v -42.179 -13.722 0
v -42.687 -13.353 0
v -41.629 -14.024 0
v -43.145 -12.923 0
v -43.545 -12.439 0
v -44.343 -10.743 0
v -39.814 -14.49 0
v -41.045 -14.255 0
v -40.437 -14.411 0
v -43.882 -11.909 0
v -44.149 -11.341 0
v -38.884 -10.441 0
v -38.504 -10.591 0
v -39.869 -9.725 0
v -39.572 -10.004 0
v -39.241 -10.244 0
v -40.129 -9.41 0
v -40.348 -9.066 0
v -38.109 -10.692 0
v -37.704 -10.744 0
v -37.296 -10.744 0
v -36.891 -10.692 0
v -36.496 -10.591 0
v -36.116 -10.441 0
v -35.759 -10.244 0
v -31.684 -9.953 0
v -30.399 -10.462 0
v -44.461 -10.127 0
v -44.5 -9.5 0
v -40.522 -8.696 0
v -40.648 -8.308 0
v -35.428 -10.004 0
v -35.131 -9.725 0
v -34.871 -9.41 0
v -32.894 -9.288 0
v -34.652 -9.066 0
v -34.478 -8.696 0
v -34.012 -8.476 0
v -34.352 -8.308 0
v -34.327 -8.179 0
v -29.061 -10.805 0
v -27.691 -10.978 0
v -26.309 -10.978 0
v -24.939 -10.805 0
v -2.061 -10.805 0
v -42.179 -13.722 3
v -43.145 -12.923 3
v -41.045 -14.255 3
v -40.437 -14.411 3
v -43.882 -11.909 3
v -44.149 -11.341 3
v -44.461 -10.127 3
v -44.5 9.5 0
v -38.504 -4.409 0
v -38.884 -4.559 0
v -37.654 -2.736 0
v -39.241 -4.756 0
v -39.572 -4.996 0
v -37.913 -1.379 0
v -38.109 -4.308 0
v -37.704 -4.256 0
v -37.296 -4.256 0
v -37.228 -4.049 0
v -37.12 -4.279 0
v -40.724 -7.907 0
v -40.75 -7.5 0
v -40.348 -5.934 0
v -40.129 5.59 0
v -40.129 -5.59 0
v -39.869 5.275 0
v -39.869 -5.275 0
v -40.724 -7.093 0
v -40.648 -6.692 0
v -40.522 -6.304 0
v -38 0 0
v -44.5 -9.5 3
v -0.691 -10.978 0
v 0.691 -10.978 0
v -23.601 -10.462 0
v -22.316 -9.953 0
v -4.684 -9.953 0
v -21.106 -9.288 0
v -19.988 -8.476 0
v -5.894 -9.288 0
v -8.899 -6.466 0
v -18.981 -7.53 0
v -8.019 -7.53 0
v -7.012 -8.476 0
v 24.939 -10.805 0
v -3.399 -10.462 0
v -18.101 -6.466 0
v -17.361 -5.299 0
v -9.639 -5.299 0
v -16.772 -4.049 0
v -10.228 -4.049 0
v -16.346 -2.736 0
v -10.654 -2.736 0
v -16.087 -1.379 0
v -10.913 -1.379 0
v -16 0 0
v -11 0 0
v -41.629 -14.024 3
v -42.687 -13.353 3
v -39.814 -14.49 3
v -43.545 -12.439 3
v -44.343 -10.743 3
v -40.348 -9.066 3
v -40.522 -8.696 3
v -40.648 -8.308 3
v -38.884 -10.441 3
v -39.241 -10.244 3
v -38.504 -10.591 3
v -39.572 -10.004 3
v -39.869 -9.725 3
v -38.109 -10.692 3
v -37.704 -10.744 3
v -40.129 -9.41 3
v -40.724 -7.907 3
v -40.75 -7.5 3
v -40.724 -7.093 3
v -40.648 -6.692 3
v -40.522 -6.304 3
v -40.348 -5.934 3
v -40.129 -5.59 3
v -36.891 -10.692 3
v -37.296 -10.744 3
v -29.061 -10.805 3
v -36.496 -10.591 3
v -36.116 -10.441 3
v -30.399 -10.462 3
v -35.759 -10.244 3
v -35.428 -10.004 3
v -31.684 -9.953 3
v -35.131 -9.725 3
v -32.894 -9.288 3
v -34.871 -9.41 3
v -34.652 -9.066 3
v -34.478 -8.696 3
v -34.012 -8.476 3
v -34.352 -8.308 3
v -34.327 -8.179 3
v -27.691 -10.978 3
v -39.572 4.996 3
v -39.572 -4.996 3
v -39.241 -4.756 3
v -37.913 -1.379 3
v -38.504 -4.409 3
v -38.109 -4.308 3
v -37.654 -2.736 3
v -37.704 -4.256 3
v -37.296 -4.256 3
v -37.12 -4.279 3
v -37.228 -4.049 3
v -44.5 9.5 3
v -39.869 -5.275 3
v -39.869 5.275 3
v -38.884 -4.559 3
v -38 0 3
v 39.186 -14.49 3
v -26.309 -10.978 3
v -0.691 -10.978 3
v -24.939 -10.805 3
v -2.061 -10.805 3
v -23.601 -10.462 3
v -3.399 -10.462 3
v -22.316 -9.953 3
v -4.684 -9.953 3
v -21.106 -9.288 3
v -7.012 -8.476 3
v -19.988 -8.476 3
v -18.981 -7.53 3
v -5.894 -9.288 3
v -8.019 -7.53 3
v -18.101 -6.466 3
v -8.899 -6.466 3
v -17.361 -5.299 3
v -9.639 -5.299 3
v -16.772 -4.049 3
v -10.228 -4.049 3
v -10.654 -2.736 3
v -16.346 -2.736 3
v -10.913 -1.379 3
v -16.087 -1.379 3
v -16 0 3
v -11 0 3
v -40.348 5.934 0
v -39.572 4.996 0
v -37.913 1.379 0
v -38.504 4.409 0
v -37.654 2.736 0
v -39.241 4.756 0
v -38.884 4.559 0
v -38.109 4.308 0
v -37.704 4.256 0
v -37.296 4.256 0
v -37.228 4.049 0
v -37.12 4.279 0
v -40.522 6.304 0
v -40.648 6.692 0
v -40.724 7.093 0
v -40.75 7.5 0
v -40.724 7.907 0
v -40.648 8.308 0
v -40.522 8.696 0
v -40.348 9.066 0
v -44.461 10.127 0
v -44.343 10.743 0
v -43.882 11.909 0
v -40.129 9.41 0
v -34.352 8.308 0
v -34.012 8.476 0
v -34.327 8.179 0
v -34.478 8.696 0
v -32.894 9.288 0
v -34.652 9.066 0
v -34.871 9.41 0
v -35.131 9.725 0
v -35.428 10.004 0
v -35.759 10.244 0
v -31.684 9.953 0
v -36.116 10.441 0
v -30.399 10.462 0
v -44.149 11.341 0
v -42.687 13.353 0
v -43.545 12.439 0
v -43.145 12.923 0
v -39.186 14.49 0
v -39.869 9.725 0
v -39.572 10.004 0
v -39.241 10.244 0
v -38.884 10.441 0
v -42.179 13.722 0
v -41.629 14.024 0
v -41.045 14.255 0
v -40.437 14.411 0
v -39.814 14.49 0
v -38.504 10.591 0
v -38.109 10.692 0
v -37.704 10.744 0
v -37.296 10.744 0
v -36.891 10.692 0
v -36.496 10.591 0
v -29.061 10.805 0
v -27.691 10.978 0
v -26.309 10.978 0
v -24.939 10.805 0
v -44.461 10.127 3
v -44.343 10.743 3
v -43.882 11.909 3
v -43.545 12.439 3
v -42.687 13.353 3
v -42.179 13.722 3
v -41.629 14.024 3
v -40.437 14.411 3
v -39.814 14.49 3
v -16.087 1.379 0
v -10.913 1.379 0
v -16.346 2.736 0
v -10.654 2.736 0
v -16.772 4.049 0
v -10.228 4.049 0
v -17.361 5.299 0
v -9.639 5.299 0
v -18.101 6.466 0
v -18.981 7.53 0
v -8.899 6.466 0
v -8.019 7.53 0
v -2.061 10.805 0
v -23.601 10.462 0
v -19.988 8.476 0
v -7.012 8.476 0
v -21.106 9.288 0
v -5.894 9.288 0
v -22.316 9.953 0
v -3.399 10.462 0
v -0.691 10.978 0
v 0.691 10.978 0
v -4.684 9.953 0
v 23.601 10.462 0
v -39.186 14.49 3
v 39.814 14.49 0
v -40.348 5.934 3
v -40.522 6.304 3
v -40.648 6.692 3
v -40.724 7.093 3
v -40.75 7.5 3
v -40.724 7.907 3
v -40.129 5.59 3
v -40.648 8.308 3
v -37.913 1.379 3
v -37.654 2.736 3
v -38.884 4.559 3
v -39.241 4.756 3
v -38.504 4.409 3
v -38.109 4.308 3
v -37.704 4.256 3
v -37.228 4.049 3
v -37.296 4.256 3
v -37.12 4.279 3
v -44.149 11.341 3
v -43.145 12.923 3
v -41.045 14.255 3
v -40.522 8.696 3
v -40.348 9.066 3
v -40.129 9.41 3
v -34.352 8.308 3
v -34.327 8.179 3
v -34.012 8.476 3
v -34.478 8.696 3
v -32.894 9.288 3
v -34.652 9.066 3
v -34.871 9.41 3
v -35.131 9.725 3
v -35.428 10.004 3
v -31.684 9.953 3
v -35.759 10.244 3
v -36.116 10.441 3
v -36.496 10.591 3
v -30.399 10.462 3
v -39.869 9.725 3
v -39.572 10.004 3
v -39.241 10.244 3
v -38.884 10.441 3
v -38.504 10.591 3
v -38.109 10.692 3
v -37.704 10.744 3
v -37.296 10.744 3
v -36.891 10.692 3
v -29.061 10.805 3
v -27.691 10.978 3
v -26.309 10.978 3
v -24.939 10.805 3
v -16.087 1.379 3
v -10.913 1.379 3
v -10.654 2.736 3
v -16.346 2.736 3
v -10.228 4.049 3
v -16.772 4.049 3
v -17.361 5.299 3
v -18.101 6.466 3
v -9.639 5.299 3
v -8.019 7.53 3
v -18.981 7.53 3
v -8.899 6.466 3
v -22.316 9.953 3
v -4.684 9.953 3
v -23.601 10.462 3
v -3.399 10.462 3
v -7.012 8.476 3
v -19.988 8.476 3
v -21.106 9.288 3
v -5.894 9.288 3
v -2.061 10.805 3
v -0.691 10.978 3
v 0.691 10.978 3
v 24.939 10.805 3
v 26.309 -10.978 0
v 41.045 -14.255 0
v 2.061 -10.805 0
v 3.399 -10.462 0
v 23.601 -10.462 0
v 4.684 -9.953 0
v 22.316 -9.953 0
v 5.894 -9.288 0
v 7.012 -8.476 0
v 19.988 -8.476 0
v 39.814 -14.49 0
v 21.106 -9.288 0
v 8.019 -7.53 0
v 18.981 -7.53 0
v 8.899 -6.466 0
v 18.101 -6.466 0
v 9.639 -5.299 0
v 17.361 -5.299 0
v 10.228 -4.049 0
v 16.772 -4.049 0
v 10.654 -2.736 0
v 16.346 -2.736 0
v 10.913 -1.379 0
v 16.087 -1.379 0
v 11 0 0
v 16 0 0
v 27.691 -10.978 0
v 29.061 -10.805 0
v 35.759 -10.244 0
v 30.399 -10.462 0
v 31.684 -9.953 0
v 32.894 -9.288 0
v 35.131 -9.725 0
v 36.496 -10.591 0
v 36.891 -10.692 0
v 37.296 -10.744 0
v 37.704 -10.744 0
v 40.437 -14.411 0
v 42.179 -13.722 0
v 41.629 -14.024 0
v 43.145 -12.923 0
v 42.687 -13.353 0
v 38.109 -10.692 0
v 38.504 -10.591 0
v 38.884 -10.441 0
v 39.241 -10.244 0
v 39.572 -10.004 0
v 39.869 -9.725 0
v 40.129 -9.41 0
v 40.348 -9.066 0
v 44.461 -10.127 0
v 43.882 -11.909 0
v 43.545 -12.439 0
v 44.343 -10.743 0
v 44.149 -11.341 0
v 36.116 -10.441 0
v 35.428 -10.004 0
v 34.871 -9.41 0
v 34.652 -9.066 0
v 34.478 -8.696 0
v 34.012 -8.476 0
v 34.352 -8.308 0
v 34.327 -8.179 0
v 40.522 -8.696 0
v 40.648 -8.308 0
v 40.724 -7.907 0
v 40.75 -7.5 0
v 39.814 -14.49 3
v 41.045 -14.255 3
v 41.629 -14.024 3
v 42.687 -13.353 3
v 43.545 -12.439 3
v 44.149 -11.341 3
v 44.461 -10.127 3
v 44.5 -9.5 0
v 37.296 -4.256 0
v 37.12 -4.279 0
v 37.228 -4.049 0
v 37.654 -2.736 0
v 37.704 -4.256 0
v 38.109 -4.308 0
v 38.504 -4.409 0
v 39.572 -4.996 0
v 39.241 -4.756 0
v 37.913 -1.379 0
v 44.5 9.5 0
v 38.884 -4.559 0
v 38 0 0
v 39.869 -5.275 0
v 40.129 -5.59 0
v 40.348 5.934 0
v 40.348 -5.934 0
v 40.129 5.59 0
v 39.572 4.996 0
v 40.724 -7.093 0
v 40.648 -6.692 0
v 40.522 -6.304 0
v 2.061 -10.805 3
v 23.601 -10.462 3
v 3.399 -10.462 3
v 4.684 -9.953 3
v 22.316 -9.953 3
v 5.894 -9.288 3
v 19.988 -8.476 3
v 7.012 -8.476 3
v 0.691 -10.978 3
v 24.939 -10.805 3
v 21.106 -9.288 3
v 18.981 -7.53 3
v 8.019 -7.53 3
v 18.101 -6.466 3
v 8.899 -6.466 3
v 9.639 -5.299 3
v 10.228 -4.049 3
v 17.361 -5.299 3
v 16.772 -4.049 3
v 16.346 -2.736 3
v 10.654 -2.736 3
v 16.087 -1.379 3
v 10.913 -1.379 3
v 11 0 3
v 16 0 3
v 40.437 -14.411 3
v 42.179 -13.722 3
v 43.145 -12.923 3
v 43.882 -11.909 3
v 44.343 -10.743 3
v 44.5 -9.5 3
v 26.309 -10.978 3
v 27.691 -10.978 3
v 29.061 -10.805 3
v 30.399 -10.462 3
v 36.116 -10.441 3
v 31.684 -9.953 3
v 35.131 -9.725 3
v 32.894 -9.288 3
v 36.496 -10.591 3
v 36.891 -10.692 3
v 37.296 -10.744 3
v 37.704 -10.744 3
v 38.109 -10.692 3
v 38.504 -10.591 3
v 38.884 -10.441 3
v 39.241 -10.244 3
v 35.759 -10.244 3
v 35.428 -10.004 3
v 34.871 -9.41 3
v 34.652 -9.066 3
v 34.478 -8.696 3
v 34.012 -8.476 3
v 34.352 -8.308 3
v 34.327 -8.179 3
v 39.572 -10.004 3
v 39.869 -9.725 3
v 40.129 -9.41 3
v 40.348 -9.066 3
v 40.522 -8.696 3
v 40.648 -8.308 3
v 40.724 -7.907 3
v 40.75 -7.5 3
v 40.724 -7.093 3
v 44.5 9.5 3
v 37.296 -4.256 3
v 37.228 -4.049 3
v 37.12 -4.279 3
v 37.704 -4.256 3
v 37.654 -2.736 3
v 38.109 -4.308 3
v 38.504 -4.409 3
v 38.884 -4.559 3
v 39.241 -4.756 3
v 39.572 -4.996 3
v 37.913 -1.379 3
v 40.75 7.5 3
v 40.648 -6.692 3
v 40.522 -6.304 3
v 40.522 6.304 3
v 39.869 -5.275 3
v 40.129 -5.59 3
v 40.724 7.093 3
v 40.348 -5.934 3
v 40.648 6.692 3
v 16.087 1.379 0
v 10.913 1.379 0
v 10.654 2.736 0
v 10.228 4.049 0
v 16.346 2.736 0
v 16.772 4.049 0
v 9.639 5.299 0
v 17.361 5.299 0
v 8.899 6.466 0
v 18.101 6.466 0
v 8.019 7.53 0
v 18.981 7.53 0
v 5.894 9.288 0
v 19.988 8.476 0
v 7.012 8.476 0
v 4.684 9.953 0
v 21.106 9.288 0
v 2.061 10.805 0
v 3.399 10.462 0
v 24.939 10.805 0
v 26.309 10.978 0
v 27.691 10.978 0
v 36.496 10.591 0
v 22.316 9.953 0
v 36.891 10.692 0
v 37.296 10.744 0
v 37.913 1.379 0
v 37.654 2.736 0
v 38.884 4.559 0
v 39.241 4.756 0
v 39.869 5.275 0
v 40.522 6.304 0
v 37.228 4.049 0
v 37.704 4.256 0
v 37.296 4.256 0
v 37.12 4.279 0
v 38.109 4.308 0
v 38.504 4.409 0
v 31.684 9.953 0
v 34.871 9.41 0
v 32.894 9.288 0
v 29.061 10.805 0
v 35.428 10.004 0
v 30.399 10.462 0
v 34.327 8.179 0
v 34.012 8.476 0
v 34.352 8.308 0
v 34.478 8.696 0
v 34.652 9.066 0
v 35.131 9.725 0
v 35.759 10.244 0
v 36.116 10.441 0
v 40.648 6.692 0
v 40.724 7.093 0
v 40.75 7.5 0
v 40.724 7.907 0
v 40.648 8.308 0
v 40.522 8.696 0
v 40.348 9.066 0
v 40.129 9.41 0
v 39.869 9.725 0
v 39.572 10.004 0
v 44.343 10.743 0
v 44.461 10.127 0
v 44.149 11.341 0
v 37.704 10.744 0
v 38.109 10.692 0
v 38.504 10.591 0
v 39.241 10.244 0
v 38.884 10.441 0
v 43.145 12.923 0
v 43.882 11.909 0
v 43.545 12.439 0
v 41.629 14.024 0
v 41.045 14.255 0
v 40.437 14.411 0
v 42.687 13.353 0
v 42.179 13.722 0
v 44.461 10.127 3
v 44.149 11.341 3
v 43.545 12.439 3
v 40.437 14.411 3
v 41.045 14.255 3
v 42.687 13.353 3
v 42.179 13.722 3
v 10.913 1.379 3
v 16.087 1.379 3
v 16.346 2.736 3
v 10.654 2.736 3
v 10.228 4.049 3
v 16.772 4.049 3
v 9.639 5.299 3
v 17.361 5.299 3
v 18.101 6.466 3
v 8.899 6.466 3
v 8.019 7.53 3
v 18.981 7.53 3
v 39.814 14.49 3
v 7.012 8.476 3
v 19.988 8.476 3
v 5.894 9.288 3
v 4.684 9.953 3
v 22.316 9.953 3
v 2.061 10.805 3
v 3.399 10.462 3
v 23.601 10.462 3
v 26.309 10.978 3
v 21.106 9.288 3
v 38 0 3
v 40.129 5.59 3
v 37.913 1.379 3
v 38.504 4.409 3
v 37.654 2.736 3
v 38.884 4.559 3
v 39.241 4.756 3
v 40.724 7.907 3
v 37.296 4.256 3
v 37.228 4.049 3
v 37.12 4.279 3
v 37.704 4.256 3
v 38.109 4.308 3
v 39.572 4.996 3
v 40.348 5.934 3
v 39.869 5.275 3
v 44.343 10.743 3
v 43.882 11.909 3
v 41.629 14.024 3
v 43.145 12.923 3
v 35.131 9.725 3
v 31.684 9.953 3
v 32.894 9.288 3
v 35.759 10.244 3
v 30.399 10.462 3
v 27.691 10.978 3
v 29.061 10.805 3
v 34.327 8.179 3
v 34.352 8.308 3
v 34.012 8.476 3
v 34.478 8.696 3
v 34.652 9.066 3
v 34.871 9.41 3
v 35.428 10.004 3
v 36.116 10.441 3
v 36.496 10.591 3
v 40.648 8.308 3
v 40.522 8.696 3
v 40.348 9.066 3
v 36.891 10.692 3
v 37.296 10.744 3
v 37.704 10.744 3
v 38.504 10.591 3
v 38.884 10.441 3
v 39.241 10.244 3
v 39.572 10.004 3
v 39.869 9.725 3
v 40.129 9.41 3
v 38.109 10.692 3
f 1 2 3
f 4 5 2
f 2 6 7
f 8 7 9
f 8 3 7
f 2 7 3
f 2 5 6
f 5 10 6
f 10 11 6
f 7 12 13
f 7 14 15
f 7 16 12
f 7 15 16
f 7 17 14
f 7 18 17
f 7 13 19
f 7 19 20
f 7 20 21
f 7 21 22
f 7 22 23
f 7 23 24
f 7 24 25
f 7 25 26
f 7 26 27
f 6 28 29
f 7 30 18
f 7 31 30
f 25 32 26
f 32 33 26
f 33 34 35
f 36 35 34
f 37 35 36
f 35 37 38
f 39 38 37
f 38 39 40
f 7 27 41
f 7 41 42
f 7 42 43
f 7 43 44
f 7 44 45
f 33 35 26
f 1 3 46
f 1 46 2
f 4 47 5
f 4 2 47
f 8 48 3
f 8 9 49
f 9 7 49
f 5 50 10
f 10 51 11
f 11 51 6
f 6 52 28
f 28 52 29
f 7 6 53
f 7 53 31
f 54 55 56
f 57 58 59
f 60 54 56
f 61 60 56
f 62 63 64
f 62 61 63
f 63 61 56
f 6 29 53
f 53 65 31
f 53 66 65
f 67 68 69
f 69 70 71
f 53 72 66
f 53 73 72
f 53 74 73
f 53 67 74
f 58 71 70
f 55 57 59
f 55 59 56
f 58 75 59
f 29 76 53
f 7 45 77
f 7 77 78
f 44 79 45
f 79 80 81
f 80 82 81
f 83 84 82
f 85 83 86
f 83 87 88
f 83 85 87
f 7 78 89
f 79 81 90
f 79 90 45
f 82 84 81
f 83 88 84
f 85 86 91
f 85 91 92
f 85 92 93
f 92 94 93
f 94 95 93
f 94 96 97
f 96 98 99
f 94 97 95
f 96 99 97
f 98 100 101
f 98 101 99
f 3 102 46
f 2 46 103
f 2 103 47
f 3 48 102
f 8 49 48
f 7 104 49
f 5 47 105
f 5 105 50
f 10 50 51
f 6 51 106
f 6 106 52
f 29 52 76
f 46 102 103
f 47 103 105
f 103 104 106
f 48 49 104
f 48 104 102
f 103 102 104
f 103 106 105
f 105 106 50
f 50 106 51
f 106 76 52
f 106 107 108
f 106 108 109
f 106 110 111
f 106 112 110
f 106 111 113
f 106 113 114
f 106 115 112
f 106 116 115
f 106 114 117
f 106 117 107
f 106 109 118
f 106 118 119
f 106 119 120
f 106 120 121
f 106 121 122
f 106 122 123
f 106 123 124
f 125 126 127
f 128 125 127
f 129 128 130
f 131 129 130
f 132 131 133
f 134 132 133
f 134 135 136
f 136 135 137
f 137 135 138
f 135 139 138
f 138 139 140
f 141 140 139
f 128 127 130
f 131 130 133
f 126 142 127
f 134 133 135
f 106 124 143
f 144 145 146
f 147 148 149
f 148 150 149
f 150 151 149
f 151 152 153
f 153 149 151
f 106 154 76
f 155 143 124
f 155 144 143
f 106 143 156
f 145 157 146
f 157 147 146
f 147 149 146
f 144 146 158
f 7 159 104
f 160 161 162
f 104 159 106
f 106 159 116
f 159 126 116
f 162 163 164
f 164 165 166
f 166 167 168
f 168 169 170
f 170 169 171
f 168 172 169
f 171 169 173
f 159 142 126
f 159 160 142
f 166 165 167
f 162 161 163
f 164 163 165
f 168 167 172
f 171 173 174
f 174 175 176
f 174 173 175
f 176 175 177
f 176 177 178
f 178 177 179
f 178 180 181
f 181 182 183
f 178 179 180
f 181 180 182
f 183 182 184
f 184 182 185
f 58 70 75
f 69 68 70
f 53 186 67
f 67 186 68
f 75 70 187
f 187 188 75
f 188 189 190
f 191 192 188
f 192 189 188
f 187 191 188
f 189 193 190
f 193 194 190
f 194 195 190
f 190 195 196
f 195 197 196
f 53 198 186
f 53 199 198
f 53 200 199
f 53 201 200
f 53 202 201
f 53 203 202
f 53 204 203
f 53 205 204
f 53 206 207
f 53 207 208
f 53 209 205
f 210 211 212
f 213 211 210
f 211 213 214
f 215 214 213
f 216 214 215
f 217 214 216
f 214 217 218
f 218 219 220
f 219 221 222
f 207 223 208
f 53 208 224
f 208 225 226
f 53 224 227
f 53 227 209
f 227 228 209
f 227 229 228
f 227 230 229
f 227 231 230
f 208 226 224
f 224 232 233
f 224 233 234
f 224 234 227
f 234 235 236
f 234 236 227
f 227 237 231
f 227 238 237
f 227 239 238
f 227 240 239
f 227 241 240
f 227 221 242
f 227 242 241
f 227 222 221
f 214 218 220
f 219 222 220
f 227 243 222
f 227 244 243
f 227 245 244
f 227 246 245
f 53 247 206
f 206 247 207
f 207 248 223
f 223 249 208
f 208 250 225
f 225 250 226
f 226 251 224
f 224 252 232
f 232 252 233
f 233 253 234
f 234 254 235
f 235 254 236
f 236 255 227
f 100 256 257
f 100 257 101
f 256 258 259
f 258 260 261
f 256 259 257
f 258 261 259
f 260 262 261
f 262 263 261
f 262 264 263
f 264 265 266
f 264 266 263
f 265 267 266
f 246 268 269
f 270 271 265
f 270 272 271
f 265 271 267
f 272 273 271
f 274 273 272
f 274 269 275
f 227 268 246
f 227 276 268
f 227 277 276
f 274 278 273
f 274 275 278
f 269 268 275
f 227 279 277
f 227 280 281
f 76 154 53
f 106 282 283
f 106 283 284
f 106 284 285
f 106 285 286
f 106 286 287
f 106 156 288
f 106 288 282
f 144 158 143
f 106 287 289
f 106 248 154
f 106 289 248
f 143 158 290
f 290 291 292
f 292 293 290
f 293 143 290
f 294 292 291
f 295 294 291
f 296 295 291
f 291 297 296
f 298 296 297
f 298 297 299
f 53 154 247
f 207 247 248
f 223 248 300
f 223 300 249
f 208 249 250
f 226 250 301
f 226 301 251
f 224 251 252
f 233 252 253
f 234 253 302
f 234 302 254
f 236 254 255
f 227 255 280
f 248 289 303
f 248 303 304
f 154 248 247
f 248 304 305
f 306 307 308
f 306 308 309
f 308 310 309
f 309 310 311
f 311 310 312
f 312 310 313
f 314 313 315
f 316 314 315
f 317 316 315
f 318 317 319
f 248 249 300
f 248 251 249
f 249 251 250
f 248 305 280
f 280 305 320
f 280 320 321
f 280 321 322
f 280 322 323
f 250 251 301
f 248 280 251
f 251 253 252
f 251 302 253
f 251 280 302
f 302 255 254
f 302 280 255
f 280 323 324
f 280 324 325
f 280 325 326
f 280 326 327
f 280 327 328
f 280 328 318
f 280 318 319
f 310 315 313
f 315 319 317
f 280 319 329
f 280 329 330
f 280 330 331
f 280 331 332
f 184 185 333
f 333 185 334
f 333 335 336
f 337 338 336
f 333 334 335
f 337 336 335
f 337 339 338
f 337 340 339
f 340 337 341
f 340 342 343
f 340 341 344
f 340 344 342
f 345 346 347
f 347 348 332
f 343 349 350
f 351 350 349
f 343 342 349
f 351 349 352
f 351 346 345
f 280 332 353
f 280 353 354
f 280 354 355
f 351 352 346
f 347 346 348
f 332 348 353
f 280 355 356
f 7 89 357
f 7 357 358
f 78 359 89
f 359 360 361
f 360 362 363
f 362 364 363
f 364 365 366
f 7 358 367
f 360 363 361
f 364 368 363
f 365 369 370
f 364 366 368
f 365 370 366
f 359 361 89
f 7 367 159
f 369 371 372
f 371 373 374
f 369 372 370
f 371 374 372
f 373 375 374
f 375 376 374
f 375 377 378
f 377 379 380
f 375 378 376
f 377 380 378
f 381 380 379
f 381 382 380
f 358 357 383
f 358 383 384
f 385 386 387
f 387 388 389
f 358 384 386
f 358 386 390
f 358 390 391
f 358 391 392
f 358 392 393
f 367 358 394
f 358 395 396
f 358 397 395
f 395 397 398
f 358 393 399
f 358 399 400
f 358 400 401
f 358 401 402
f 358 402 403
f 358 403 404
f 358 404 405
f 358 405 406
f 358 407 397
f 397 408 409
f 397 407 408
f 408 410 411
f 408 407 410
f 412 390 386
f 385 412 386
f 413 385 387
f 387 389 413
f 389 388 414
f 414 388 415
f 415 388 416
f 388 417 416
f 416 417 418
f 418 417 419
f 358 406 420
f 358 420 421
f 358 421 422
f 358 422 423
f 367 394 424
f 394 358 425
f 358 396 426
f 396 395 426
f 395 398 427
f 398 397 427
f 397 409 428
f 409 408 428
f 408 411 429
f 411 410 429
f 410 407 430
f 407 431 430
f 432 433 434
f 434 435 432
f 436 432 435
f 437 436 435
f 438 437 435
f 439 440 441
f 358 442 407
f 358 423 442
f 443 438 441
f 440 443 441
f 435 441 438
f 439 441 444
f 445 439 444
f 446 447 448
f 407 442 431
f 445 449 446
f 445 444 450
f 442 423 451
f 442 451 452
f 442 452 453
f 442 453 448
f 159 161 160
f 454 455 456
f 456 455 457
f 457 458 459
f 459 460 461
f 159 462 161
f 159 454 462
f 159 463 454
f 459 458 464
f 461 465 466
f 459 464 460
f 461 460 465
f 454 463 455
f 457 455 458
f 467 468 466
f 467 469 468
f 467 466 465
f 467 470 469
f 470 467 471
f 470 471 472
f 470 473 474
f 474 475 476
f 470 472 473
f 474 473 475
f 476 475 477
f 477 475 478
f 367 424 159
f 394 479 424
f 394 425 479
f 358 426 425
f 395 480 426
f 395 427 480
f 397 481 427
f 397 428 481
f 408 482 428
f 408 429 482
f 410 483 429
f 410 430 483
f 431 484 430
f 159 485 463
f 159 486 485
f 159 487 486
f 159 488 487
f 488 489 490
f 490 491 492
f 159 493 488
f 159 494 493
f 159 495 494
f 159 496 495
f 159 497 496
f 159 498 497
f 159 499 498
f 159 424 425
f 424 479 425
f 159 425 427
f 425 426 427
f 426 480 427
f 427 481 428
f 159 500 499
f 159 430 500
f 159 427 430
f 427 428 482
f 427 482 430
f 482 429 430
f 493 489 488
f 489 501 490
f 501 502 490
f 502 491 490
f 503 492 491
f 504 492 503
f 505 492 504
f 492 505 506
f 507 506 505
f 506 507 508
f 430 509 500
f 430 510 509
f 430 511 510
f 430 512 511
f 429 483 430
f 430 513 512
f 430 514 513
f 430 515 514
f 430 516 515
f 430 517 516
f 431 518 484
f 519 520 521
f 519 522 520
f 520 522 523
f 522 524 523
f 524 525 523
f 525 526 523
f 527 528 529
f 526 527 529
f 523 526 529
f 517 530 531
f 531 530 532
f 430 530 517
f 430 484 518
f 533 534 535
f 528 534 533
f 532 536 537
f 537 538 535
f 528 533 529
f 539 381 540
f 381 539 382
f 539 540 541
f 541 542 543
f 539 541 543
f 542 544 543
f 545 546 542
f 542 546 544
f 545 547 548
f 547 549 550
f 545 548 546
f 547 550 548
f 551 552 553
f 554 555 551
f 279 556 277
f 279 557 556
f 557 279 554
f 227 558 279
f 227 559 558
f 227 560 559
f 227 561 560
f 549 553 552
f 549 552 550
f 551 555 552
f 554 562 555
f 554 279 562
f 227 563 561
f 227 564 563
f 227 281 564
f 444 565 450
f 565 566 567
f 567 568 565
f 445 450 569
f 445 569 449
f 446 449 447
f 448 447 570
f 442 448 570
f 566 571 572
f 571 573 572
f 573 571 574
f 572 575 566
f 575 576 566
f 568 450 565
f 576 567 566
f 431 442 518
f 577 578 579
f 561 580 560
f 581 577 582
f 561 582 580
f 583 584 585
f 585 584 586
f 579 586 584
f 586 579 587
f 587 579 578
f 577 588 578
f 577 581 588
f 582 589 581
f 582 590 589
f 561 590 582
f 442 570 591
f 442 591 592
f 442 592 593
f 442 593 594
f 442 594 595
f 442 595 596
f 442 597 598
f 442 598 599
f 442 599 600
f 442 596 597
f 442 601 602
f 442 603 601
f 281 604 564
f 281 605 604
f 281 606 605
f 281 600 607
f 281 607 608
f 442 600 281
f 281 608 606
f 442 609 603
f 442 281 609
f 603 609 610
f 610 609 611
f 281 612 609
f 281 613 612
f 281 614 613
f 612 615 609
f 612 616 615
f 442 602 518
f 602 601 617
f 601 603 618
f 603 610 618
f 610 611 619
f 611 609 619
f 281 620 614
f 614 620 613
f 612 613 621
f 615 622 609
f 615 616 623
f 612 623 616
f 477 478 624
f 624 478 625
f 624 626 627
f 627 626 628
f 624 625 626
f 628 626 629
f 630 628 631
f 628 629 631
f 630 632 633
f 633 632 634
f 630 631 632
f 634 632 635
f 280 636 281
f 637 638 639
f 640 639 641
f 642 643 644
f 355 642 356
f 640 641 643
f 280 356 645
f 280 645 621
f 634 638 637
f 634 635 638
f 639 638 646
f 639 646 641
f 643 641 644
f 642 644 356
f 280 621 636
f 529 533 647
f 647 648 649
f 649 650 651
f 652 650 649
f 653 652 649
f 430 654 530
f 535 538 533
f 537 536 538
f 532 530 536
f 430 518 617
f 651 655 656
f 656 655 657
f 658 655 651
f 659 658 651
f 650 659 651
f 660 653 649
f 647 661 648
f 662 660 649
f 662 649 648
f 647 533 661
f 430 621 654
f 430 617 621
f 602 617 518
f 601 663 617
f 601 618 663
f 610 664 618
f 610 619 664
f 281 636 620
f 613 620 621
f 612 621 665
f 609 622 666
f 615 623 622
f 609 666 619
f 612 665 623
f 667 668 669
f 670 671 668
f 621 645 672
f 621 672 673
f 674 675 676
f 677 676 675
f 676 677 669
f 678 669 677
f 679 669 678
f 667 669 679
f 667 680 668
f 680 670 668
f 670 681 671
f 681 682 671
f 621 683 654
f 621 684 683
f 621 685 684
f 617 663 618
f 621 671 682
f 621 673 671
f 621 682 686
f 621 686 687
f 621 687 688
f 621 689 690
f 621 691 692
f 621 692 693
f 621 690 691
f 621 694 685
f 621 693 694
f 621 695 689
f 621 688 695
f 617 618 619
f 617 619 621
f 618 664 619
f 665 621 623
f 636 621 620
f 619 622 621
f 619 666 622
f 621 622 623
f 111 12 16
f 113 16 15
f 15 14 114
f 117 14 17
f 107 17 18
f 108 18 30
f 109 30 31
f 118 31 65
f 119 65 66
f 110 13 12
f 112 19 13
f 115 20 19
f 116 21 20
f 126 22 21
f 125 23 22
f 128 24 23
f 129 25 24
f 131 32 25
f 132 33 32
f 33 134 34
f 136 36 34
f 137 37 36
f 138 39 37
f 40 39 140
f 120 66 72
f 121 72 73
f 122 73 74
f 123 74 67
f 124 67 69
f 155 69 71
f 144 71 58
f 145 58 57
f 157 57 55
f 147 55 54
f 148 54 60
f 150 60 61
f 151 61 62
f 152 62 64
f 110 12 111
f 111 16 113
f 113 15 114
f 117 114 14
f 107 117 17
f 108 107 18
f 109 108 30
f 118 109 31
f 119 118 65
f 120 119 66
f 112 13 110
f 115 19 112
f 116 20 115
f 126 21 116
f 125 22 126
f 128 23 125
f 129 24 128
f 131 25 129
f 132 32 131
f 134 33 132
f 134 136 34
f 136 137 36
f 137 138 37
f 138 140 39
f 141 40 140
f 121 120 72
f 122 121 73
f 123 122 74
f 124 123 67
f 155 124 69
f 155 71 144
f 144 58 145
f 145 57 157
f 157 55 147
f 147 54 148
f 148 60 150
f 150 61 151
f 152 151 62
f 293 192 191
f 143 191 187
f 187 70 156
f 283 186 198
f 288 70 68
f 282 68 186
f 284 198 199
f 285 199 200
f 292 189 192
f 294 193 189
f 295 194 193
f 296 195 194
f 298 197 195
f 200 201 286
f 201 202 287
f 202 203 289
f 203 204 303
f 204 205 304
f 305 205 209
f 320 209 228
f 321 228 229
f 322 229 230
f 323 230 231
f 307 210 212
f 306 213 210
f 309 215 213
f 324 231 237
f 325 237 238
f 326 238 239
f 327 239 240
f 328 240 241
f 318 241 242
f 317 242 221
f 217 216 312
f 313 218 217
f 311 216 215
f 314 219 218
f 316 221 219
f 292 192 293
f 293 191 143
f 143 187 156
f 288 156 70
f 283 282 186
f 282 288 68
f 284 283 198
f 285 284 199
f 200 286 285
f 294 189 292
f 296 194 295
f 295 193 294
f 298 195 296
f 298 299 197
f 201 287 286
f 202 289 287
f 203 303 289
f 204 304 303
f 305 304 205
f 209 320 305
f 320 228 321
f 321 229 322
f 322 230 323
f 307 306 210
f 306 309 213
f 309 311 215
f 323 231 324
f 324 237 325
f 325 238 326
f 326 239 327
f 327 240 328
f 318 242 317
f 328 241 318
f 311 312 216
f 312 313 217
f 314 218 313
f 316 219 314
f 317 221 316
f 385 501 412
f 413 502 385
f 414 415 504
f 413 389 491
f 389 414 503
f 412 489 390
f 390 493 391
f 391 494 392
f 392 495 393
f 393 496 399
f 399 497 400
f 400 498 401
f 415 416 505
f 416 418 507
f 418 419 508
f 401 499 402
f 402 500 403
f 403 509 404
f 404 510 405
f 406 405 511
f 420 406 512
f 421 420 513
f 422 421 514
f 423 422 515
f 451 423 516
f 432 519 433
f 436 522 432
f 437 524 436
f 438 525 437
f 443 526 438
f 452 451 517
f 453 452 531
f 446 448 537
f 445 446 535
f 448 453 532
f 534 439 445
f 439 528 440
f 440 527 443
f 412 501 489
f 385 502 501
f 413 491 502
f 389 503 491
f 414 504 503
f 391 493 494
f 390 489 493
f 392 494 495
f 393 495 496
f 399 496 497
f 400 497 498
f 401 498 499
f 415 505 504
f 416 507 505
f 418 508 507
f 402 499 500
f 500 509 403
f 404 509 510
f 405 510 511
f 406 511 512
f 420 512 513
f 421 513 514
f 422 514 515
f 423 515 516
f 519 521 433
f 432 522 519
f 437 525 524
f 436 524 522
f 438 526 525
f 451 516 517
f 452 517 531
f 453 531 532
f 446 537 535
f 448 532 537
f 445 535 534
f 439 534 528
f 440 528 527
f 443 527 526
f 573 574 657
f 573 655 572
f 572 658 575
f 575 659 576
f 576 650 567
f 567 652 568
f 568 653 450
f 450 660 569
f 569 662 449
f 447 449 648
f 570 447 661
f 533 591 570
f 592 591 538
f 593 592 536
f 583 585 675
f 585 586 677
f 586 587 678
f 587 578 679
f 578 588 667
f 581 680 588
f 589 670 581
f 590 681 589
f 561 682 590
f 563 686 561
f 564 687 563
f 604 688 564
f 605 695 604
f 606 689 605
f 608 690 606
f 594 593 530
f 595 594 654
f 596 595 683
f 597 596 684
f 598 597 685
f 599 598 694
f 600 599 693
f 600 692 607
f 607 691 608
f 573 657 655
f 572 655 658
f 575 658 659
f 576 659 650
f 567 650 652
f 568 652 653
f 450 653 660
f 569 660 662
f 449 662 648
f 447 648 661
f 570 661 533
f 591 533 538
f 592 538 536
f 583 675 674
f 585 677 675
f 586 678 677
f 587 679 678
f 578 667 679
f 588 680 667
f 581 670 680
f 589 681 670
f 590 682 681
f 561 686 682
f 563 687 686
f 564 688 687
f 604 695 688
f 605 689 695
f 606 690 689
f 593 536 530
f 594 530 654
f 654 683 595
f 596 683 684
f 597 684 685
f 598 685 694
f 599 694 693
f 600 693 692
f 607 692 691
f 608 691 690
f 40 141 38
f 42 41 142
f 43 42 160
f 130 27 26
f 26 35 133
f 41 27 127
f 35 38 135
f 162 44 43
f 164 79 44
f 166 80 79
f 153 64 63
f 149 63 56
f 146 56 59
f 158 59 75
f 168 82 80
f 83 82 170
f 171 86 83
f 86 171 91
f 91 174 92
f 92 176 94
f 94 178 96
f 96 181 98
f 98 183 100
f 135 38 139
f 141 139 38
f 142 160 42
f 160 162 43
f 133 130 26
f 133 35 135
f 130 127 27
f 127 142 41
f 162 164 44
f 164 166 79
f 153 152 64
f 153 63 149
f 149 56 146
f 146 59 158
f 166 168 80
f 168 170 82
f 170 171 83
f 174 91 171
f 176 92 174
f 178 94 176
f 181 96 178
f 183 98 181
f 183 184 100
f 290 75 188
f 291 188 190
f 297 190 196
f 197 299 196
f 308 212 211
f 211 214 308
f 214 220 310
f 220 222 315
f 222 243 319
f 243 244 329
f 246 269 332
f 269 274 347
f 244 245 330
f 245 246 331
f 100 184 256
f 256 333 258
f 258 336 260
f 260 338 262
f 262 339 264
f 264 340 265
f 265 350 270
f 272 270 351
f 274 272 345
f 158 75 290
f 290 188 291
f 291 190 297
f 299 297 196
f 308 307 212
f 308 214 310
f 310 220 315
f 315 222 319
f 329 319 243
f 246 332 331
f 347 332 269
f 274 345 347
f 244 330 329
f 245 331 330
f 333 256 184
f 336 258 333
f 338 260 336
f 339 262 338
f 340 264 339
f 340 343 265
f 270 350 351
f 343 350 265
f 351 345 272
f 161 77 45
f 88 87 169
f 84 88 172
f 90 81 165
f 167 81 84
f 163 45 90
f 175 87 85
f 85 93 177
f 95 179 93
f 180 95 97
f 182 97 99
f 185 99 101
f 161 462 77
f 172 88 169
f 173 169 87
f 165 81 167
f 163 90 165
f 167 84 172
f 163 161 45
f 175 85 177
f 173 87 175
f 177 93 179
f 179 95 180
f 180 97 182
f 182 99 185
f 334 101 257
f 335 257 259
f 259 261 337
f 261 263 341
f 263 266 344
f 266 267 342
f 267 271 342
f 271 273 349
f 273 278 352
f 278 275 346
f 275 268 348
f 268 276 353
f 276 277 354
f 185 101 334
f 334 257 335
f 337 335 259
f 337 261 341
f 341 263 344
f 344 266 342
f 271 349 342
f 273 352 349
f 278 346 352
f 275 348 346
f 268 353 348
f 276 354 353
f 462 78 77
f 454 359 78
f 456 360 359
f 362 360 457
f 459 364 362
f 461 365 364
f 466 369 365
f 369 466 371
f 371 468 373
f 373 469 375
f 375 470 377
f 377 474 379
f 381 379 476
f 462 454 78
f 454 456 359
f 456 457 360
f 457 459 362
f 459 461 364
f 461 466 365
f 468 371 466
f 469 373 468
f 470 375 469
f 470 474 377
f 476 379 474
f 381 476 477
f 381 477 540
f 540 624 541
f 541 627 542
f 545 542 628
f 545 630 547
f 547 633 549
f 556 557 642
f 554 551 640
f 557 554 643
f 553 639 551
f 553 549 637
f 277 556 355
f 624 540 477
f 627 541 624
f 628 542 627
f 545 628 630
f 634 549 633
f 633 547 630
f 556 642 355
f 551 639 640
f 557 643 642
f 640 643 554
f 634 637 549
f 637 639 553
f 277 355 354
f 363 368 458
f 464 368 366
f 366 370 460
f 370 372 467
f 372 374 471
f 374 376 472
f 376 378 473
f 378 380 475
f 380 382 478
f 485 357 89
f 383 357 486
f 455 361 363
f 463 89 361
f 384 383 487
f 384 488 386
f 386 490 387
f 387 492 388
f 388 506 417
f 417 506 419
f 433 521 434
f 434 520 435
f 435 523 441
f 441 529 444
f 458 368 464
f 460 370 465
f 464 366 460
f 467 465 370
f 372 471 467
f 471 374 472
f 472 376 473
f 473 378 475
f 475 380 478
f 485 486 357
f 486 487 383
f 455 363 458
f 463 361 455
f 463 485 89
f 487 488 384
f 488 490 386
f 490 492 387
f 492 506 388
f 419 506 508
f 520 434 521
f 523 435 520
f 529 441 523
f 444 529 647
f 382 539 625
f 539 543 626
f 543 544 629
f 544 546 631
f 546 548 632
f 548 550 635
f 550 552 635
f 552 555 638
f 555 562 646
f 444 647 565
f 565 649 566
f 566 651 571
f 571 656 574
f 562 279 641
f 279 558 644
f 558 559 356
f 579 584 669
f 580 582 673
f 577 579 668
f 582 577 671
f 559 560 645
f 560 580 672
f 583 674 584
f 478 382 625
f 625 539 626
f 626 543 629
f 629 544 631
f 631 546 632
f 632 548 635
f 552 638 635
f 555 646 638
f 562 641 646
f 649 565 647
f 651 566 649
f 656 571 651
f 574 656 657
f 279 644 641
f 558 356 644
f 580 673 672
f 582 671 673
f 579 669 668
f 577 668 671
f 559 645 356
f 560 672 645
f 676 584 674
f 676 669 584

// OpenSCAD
$fn = 50;

difference() {
	union() {
		hull() {
			translate(v = [-39.5, 9.5, 0]) {
				cylinder(h = 3, r = 5);
			}
			translate(v = [39.5, 9.5, 0]) {
				cylinder(h = 3, r = 5);
			}
			translate(v = [-39.5, -9.5, 0]) {
				cylinder(h = 3, r = 5);
			}
			translate(v = [39.5, -9.5, 0]) {
				cylinder(h = 3, r = 5);
			}
		}
	}
	union() {
		translate(v = [-37.5, -7.5, -100.0]) {
			cylinder(h = 200, r = 3.25);
		}
		translate(v = [-37.5, 7.5, -100.0]) {
			cylinder(h = 200, r = 3.25);
		}
		translate(v = [37.5, -7.5, -100.0]) {
			cylinder(h = 200, r = 3.25);
		}
		translate(v = [37.5, 7.5, -100.0]) {
			cylinder(h = 200, r = 3.25);
		}
		translate(v = [-37.5, -7.5, -100.0]) {
			cylinder(h = 200, r = 1.8);
		}
		translate(v = [-37.5, 7.5, -100.0]) {
			cylinder(h = 200, r = 1.8);
		}
		translate(v = [37.5, -7.5, -100.0]) {
			cylinder(h = 200, r = 1.8);
		}
		translate(v = [37.5, 7.5, -100.0]) {
			cylinder(h = 200, r = 1.8);
		}
		translate(v = [-27.0, 0, 0.0]) {
			cylinder(h = 3, r = 11.0);
		}
		cylinder(h = 3, r = 11.0);
		translate(v = [27.0, 0, 0.0]) {
			cylinder(h = 3, r = 11.0);
		}
	}
}
